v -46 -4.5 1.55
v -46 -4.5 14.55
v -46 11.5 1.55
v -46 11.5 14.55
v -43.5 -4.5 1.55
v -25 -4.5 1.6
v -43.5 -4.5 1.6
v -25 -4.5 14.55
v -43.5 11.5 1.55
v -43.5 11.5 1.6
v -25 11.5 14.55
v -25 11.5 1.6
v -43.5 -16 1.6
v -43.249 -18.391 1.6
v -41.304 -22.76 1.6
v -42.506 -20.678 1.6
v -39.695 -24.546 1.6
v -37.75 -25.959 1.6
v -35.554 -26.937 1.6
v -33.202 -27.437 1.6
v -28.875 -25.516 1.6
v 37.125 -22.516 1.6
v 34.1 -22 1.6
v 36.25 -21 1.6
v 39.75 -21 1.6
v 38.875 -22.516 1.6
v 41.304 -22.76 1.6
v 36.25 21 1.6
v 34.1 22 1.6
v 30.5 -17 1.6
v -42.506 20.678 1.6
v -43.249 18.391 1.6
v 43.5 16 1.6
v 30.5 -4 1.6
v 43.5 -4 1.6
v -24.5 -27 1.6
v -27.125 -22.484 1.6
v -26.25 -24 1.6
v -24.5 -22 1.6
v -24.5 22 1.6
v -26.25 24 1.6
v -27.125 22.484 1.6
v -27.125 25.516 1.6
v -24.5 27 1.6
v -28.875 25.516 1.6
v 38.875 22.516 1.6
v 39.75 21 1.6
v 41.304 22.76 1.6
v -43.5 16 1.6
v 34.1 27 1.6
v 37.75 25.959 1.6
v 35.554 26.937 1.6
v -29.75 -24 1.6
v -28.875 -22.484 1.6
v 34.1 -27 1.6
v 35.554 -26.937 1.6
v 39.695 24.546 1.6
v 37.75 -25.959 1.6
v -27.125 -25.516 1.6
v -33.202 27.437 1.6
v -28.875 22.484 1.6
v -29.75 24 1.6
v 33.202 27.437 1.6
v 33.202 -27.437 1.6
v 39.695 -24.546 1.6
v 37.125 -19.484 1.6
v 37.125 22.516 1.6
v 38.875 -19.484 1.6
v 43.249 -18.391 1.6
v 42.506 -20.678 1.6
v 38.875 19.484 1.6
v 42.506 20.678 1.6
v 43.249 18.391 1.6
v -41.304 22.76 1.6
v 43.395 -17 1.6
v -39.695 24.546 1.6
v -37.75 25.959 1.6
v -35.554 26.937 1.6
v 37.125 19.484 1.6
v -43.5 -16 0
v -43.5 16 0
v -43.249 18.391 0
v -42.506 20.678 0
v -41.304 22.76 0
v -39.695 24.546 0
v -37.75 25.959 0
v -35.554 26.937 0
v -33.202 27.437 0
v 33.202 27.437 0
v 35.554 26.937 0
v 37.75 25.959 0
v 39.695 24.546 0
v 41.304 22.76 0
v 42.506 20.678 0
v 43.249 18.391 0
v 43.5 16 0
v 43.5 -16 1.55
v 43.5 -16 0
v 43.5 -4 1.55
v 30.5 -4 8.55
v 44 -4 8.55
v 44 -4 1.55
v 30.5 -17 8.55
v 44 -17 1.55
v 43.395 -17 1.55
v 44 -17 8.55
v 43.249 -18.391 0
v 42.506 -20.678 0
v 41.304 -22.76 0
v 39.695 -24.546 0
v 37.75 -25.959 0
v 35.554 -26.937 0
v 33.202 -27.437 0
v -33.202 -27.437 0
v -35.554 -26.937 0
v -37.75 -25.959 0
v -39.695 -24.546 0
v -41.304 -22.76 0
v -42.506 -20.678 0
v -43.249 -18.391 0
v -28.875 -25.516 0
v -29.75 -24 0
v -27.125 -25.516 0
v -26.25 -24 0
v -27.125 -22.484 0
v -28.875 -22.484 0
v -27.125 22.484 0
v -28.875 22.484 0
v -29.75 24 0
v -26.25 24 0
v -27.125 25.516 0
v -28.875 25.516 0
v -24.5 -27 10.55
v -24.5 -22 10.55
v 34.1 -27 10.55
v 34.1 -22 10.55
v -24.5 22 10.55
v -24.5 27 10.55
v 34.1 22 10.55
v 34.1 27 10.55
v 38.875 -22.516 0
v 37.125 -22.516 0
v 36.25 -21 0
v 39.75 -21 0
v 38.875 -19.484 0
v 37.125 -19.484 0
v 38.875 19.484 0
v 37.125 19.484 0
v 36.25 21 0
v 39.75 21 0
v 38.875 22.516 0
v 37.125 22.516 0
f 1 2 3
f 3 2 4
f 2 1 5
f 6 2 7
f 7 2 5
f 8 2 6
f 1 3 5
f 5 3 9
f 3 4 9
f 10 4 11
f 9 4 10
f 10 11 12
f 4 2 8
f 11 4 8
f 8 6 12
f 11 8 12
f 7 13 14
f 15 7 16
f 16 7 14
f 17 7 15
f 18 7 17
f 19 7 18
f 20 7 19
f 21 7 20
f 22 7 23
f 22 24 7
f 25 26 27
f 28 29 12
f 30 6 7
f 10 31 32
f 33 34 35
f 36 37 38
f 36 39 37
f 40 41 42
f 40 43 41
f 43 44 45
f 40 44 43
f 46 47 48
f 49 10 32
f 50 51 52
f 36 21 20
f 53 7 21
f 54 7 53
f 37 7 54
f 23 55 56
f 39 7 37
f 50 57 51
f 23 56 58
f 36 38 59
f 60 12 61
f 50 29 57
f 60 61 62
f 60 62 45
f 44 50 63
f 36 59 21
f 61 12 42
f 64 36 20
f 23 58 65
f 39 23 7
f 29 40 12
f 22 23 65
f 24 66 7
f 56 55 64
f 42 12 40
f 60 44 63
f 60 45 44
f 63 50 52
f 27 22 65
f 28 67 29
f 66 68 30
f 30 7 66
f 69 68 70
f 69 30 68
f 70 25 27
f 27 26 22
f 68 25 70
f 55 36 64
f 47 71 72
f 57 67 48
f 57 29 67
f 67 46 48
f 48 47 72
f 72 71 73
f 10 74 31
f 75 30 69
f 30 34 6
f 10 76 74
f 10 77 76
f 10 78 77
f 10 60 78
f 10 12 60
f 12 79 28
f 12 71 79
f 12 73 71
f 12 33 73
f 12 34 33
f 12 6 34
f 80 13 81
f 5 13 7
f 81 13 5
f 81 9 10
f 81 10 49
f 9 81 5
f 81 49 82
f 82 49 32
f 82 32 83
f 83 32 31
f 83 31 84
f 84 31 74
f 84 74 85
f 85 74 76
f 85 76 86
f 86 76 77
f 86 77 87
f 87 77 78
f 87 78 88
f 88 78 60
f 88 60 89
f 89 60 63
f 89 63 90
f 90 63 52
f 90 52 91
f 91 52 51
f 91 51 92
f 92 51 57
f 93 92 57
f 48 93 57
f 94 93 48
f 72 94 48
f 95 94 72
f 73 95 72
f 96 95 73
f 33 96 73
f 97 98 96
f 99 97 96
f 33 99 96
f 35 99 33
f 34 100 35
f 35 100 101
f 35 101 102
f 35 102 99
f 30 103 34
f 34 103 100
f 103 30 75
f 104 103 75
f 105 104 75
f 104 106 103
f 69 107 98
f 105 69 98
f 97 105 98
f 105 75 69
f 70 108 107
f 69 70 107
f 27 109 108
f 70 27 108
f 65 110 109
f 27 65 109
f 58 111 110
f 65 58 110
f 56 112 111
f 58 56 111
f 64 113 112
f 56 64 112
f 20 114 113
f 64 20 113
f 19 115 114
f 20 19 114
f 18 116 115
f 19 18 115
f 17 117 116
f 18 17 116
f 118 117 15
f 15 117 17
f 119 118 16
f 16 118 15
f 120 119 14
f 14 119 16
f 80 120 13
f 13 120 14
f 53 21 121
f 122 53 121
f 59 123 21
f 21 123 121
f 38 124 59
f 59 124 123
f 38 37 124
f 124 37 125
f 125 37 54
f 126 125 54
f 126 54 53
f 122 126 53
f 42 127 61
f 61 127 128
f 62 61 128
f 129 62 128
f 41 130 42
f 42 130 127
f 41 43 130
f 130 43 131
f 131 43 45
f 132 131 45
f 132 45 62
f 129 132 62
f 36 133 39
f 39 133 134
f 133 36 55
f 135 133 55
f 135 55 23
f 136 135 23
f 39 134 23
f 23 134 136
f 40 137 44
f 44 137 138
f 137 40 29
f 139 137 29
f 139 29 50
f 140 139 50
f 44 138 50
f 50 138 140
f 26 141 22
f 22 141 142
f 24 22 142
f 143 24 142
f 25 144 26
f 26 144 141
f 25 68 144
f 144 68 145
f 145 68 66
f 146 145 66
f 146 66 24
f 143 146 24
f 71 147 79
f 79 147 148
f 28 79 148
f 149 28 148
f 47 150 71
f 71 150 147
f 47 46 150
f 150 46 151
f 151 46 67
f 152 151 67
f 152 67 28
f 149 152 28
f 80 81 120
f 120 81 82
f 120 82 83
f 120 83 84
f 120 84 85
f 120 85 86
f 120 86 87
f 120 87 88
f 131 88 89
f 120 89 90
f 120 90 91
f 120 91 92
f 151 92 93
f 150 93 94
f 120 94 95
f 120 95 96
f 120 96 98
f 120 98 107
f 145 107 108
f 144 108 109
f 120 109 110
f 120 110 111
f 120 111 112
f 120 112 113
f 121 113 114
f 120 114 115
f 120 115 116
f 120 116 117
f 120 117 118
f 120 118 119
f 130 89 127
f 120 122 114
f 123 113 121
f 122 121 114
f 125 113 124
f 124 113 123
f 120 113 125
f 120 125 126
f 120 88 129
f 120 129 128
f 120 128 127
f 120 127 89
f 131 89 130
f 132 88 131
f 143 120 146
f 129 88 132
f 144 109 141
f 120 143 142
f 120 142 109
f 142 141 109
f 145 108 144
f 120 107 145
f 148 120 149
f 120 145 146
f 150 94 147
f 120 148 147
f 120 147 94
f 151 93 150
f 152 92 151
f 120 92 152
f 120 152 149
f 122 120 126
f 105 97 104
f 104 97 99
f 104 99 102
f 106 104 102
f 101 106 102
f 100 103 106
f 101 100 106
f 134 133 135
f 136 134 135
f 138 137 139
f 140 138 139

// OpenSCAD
// file: ../Colours.scad
//
//FASTENERS
//
boltColour = 		 "gray";
nutColour =  		 "LightGray";
washerColour =       "LightGray";
threadedRodColour =  "gray";


//
//PLATES
//
plateColour =  		"SlateGray";


//
//ELECTRONICS
//
boardColour = 			"red";
photoDiodeColour = 		"DarkSlateGrey";
IRMountColour = 		"white";
batteryColour = 		"blue";
batteryHolderColour = 	"green";
cameraMountColour = 	"green";
cameraColour = 			"red";


//
//MECHANICAL
//
motorColour = 			"WhiteSmoke";
motorMountColour =  	"green";
motorCouplingColour=	"grey";
wheelColour	=			"yellow";


//
//OTHER
//
ballFenderCol = 		"green";
// file: ../Fasteners.scad
include <Colours.scad>

//
//CODE FOR BOLTS	
//

//define some standard bolt dimensions
// [ name on BOM, bolt diameter, hex head thickness, width of head measured between corners]
M3Bolt = ["M3 bolt", 3, 2.3,   6];
M4Bolt = ["M4 bolt", 4,   3, 7.7];
M5Bolt = ["M5 bolt", 5, 4.5, 8.8];
M6Bolt = ["M6 bolt", 6,   5,  11];

//functions for quickly getting bolt dimensions, etc.
function boltName(type) =          type[0];
function boltHoleDia(type) =       type[1];
function boltHeadThickness(type) = type[2];
function boltCorners(type) =       type[3];

module Bolt(type, length, printToBOM = false)
{
	color(boltColour)
	 union()
	 {
		 //hexagonal head shape (cylinder limited to 6 side segments)
		 cylinder(r = boltCorners(type)/2, h = boltHeadThickness(type), $fn = 6);
		 //the bolt shank
		 translate([0,0,-length])
		  cylinder(r = boltHoleDia(type)/2, h = length + 0.1);
	 }
	
	//echoes properties to command line, etc. so it can be counted manually
	//or by a program
	if(printToBOM == true)
	{
		echo(boltName(type), "x", length);
	}
}



//
//CODE FOR NUTS	
//

//define some standard nut dimensions
// [ nut name on BOM, hole diameter, nut thickness, width measured between corners, width between flats]
M3Nut = ["M3 nut", 3, 2.3, 6.1, 5.3];
M4Nut = ["M4 nut", 4,   3, 7.7,   0];
M5Nut = ["M5 nut", 5, 4.5, 8.8,   0];
M6Nut = ["M6 nut", 6,   5,  11,   0];

//functions for quickly getting nut dimensions
function nutName(type) =      type[0];
function nutHoleDia(type) =   type[1];
function nutThickness(type) = type[2];
function nutCorners(type) =   type[3];
function nutFlats(type) =     type[4];

module Nut(type, printToBOM = false, negShape = false)
{
	color(nutColour)
	 difference()
	 {
	 	 //hexagonal shape (cylinder limited to 6 side segments)
		 cylinder(r = nutCorners(type)/2, h = nutThickness(type), $fn = 6);
		
		 //allows for a nut to be generated which is useful for being a negative in other 
		 //difference operations down the track
		 if(negShape == false) 
		 {
			 //the hole through the centre
			 translate([0,0,-0.05])
			  cylinder(r = nutHoleDia(type)/2, h = nutThickness(type) + 0.1);
		 }
	 }
	
	//echoes properties to command line, etc. so it can be counted manually
	//or by a program
	if(printToBOM == true)
	{
		echo(nutName(type));
	}
}




//
//CODE FOR WASHERS
//

//define some standard washers
// [washer name, inner hole diameter, outer diameter, thickness]
M3Washer = ["M3 washer", 3.3,  6.8, 0.5];
M4Washer = ["M4 washer", 4.4,  8.8, 0.8];
M5Washer = ["M5 washer", 5.4,  9.8,   1];
M6Washer = ["M6 washer", 6.5, 11.8, 1.6];

//functions for quickly getting washer dimensions
function washerName(type) =        type[0];
function washerID(type) =     	   type[1];
function washerOD(type) = 		   type[2];
function washerThickness(type) =   type[3];

module Washer(type, printToBOM = false, negShape = false)
{
	color(washerColour)
	 difference()
	 {
		 //main circle shape
		 cylinder(r = washerOD(type)/2, h = washerThickness(type));
		
		 //allows for a washer to be generated which is useful for being a negative in other 
	 	 //difference operations down the track
		 if(negShape == false) 
		 {
			 //the hole through the centre
			 translate([0,0,-0.05])
			  cylinder(r = washerID(type)/2, h = washerThickness(type) + 0.1);
		 }
	 }
	
	//echoes properties to command line, etc. so it can be counted manually
	//or by a program
	if(printToBOM == true)
	{
		echo(washerName(type));
	}
}




//
//CODE FOR THREADED ROD
//

//define some standard dimensions and properties
// [name on BOM, rod diameter]
M3Threaded = ["M3 threaded rod", 3];
M4Threaded = ["M4 threaded rod", 4];
M5Threaded = ["M5 threaded rod", 5];
M6Threaded = ["M6 threaded rod", 6];

//functions for quickly getting bolt dimensions
function threadName(type) =   type[0];
function threadDia(type) =    type[1];

module ThreadedRod(type, length, printToBOM = false)
{
	color(threadedRodColour)
	 cylinder(r = threadDia(type)/2, h = length);
	
	//echoes properties to command line, etc. so it can be counted manually
	//or by a program
	if(printToBOM == true)
	{
		echo(threadName(type), "x", length);
	}
}
// file: ../Electronics.scad
include <Fasteners.scad>
include <Colours.scad>




//
//ELECTRONICS CONTROLLER BOARDS
//

// [name on BOM, path to stl model if any, hole type, [hole top left position], [hole top right position], [hole bot right position], [hole bot left position] ]
ArduinoUNO =   [ "Arduino UNO",  "Arduino.stl", M3Bolt, 			[-19, 24.15], 	[31.8, 8.95], 	[31.8, -19.05], [-20.3, -24.15] ];
L298NHBridge = [ "L298N H-Bridge", "L298N.stl", M3Bolt, 			[-18.5, 18.5], 	[18.5, 18.5], 	[18.5, -18.5], 	[-18.5, -18.5] ];
BeagleBone =   [ "BeagleBone Black", "BeagleBoneBlack.stl", M3Bolt, [-28, 24], 		[38, 21], 		[38, -21], 		[-28, -24] ];
OdroidU3 = 	   [ "Ordoid U3",	"OdroidU3.stl",	M3Bolt, 			[-38, 20.5],	[38, 20.5],		[38, -20.5],	[-38, -20.5]];

//functions for getting useful dimensions
function boardName(type) = type[0];
function getModelPath(type) = type[1];
function boardHoleDia(type) = boltHoleDia(type[2]);
function getHolePos(type, holeNum) = type[holeNum+3]; //hole num starts at 0

//used to get a hole template for difference operations
module HoleTemplate(board, boltLength, clearance)
{
	for(i=[0:3])
	{
		echo(i);
		translate(getHolePos(board, i))
		 cylinder(r = (boardHoleDia(board)+clearance)/2, h = boltLength);
	}
}




//
//module to create a model of the boards, mainly visual
//

module DisplayBoard(type)
{
	//arduino model is not properly centred
	if(type == ArduinoUNO)
	{
		translate([-19, 24.15, 0])
		 color(boardColour)
		  import(getModelPath(type));
	}
	
	else
	{
		color(boardColour)
		 import(getModelPath(type));
	}
	
	echo(boardName(type));
}

/*
translate([0,0,20])
translate(ArduinoUNO[3])
 DisplayBoard(ArduinoUNO);

difference()
{	
	translate([-50, -35, 0.1])
	cube([100,70,5]);
	HoleTemplate(ArduinoUNO, 20, 0.5);
}
*/
// main file
include <../Electronics.scad>
include <../Fasteners.scad>


cornerRadius = 11.5;
length = 87;
width = 55;
thickness = 1.6;

union()
{
	difference()
	{
		translate([-(length-2*cornerRadius)/2, -(width-2*cornerRadius)/2, 0])
		 minkowski()
		{
			//the cicuit board
			cube([length-2*cornerRadius, width-2*cornerRadius, thickness/2]);
			//the rounded corners
			cylinder(r = cornerRadius, h = thickness/2);
		}
		
		//the mounting holes
		translate([0,0,-0.5])
		 HoleTemplate(BeagleBone, thickness + 1, 0.5);
	}

	//the ethernet port
	translate([ -(length/2 + 2.5),width/2 - 16 - 16, thickness - 0.05])
	 cube([21,16,13]);
	 
	//the USB port
	translate([length/2 -13, -width/2 + 10.5, thickness - 0.05])
	 cube([13.5, 13, 7]);

	//the headers
	//
	//top
	translate([-24.5, width/2 - 5 - 0.5, thickness - 0.05])
	 cube([58.6, 5, 9]);
	//bottom
	translate([-24.5, -(width/2 - 0.5), thickness - 0.05])
	 cube([58.6, 5, 9]);
}
